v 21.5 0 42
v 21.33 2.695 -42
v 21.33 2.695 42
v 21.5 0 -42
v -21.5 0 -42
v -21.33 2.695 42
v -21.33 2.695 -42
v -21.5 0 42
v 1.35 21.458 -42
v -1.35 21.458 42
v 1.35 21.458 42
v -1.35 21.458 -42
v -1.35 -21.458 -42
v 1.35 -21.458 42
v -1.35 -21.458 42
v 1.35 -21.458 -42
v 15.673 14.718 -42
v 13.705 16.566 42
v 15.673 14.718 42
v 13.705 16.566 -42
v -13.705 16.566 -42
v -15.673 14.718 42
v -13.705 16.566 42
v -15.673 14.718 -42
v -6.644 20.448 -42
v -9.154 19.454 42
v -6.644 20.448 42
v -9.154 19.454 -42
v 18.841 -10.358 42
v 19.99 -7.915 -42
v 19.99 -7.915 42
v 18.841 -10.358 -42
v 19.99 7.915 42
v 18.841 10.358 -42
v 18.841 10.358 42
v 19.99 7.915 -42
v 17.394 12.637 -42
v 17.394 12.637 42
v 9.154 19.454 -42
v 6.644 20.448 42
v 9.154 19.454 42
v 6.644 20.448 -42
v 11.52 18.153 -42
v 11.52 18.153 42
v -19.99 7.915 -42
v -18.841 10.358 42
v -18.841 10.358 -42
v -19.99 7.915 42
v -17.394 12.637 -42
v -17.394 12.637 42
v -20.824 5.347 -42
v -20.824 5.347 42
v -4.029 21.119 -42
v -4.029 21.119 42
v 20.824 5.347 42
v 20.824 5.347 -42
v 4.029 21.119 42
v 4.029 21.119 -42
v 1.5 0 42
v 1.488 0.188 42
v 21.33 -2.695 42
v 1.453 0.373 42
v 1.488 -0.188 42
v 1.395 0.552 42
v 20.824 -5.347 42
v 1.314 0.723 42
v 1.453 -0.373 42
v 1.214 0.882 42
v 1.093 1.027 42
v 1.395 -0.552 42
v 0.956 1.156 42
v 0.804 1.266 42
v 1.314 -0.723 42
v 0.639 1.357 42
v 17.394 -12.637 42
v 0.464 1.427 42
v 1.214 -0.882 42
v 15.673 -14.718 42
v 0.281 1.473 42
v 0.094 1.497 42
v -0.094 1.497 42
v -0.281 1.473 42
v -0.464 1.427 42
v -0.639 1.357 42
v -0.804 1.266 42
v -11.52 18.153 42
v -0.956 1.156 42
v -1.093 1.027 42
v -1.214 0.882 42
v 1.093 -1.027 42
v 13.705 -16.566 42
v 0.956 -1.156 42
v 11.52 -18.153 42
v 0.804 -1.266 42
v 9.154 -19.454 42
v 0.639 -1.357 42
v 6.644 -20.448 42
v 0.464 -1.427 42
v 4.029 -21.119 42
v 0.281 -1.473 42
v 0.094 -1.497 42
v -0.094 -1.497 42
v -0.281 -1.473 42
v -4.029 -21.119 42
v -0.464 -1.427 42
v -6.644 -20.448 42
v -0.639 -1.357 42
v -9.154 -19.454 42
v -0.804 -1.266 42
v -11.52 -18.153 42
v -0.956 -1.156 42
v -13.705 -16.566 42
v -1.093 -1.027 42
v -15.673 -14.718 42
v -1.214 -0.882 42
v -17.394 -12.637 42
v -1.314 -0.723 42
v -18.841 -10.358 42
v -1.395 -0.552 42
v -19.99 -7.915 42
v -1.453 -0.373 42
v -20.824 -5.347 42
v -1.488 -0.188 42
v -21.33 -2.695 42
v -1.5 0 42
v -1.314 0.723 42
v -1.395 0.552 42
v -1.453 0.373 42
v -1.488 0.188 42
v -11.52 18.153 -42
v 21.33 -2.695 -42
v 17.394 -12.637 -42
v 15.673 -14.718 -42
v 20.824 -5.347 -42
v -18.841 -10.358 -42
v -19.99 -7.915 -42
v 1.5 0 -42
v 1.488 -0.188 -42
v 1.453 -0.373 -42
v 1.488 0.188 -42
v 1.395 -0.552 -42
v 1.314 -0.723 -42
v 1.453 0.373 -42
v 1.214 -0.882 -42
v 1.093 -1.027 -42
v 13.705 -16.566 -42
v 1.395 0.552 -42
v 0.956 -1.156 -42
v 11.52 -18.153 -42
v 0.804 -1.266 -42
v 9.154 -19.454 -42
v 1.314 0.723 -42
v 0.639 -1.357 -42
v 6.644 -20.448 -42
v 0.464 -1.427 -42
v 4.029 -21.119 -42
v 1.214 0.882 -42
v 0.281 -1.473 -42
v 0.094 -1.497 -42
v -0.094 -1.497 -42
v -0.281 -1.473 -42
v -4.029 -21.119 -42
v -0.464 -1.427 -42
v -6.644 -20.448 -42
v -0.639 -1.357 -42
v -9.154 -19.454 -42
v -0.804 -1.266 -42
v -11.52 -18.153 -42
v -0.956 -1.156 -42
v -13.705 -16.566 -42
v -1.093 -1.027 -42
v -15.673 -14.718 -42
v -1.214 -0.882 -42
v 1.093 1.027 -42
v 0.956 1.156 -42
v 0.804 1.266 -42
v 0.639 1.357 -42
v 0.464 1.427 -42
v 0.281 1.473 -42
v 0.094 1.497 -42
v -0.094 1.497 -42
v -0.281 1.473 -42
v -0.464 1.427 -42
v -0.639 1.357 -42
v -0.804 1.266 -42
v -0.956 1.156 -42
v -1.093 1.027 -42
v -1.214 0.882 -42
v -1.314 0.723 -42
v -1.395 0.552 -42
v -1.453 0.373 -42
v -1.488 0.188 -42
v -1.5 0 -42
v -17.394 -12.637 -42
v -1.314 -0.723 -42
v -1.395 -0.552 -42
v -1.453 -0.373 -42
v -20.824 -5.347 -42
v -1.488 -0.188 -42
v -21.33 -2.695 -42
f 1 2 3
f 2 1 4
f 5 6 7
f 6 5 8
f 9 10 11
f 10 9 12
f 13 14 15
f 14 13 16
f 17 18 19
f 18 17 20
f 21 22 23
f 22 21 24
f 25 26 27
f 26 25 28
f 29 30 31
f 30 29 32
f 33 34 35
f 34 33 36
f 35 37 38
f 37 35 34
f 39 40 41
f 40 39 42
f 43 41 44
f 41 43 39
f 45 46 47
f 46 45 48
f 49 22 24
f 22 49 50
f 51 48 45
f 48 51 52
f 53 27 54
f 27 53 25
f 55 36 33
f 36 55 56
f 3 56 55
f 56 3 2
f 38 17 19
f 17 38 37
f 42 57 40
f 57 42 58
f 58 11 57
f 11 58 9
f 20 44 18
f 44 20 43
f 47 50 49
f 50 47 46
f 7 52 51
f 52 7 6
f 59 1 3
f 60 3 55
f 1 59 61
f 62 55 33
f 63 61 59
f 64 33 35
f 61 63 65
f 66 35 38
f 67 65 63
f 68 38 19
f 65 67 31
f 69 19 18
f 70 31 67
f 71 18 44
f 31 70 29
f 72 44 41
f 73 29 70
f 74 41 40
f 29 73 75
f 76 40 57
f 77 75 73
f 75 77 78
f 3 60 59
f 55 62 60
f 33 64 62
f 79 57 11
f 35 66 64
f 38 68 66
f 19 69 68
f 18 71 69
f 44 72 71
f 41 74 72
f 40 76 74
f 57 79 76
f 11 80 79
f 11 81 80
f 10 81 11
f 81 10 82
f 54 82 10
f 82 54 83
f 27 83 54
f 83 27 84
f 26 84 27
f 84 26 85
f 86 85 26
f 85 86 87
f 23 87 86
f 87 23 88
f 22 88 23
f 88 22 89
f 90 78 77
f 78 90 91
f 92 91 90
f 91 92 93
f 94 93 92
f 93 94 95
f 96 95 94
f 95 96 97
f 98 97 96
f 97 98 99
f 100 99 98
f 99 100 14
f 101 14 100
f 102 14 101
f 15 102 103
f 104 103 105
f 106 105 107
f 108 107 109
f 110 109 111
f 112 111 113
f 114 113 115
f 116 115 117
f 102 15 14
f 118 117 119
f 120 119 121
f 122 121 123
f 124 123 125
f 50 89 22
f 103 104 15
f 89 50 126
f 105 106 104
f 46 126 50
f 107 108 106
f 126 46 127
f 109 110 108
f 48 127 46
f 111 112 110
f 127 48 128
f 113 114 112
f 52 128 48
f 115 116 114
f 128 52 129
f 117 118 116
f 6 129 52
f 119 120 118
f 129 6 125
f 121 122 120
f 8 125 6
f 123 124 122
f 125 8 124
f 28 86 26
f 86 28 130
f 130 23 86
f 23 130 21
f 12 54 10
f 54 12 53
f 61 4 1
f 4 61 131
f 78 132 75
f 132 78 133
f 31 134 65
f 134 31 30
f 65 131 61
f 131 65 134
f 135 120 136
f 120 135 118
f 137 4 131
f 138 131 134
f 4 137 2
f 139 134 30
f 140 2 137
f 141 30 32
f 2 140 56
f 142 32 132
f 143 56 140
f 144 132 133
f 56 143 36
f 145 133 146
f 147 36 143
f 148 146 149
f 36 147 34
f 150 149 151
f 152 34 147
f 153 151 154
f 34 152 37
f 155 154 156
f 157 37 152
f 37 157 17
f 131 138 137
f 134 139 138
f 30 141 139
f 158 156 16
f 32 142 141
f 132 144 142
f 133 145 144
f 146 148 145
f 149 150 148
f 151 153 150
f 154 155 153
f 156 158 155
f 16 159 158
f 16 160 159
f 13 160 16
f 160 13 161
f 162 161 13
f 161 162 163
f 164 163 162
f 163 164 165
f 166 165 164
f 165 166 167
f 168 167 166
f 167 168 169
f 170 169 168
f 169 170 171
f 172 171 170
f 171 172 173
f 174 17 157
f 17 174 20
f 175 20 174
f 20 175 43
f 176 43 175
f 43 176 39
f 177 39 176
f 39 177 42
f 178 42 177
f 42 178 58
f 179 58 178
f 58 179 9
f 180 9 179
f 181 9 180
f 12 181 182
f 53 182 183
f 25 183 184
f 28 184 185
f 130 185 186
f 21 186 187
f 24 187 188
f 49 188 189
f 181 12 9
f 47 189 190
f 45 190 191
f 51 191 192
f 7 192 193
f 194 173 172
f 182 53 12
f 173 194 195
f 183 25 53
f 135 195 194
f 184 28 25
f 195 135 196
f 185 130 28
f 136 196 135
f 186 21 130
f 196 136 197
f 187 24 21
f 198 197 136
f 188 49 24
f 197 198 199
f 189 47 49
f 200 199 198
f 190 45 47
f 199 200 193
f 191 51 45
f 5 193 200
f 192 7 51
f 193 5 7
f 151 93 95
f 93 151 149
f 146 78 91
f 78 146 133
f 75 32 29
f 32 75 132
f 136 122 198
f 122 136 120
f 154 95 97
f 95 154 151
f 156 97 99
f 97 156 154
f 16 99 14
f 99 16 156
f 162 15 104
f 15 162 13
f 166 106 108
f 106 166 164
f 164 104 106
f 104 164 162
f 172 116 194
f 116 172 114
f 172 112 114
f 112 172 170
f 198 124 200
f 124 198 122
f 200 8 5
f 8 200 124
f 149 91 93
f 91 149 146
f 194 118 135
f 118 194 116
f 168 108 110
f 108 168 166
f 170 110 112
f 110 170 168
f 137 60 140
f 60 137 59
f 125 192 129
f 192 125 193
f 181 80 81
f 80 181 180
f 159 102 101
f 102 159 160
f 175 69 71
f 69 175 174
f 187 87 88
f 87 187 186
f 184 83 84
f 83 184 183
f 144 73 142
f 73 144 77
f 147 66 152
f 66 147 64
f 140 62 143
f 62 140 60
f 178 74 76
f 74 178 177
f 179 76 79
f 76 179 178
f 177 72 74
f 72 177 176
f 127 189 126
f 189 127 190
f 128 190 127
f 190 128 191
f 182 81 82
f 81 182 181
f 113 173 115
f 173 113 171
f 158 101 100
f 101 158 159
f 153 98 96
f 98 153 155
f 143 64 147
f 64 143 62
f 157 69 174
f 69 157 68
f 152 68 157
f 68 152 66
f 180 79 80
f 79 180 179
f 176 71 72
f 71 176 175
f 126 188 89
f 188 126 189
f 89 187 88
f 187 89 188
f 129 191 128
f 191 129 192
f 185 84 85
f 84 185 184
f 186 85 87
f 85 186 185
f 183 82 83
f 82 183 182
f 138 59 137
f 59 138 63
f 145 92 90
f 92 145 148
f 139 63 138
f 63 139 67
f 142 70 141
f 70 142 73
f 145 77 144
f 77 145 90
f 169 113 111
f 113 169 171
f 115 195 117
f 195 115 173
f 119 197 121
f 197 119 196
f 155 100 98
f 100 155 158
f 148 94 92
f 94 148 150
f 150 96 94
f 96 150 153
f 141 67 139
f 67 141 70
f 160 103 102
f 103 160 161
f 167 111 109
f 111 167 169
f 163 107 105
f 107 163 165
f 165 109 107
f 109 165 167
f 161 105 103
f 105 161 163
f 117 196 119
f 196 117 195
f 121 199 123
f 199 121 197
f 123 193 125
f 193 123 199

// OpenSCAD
$fn = 50;


difference() {
	union() {
		translate(v = [0, 0, -42.0000000000]) {
			cylinder(h = 84, r = 21.5000000000);
		}
	}
	union() {
		translate(v = [0, 0, -100.0000000000]) {
			cylinder(h = 200, r = 1.5000000000);
		}
	}
}
